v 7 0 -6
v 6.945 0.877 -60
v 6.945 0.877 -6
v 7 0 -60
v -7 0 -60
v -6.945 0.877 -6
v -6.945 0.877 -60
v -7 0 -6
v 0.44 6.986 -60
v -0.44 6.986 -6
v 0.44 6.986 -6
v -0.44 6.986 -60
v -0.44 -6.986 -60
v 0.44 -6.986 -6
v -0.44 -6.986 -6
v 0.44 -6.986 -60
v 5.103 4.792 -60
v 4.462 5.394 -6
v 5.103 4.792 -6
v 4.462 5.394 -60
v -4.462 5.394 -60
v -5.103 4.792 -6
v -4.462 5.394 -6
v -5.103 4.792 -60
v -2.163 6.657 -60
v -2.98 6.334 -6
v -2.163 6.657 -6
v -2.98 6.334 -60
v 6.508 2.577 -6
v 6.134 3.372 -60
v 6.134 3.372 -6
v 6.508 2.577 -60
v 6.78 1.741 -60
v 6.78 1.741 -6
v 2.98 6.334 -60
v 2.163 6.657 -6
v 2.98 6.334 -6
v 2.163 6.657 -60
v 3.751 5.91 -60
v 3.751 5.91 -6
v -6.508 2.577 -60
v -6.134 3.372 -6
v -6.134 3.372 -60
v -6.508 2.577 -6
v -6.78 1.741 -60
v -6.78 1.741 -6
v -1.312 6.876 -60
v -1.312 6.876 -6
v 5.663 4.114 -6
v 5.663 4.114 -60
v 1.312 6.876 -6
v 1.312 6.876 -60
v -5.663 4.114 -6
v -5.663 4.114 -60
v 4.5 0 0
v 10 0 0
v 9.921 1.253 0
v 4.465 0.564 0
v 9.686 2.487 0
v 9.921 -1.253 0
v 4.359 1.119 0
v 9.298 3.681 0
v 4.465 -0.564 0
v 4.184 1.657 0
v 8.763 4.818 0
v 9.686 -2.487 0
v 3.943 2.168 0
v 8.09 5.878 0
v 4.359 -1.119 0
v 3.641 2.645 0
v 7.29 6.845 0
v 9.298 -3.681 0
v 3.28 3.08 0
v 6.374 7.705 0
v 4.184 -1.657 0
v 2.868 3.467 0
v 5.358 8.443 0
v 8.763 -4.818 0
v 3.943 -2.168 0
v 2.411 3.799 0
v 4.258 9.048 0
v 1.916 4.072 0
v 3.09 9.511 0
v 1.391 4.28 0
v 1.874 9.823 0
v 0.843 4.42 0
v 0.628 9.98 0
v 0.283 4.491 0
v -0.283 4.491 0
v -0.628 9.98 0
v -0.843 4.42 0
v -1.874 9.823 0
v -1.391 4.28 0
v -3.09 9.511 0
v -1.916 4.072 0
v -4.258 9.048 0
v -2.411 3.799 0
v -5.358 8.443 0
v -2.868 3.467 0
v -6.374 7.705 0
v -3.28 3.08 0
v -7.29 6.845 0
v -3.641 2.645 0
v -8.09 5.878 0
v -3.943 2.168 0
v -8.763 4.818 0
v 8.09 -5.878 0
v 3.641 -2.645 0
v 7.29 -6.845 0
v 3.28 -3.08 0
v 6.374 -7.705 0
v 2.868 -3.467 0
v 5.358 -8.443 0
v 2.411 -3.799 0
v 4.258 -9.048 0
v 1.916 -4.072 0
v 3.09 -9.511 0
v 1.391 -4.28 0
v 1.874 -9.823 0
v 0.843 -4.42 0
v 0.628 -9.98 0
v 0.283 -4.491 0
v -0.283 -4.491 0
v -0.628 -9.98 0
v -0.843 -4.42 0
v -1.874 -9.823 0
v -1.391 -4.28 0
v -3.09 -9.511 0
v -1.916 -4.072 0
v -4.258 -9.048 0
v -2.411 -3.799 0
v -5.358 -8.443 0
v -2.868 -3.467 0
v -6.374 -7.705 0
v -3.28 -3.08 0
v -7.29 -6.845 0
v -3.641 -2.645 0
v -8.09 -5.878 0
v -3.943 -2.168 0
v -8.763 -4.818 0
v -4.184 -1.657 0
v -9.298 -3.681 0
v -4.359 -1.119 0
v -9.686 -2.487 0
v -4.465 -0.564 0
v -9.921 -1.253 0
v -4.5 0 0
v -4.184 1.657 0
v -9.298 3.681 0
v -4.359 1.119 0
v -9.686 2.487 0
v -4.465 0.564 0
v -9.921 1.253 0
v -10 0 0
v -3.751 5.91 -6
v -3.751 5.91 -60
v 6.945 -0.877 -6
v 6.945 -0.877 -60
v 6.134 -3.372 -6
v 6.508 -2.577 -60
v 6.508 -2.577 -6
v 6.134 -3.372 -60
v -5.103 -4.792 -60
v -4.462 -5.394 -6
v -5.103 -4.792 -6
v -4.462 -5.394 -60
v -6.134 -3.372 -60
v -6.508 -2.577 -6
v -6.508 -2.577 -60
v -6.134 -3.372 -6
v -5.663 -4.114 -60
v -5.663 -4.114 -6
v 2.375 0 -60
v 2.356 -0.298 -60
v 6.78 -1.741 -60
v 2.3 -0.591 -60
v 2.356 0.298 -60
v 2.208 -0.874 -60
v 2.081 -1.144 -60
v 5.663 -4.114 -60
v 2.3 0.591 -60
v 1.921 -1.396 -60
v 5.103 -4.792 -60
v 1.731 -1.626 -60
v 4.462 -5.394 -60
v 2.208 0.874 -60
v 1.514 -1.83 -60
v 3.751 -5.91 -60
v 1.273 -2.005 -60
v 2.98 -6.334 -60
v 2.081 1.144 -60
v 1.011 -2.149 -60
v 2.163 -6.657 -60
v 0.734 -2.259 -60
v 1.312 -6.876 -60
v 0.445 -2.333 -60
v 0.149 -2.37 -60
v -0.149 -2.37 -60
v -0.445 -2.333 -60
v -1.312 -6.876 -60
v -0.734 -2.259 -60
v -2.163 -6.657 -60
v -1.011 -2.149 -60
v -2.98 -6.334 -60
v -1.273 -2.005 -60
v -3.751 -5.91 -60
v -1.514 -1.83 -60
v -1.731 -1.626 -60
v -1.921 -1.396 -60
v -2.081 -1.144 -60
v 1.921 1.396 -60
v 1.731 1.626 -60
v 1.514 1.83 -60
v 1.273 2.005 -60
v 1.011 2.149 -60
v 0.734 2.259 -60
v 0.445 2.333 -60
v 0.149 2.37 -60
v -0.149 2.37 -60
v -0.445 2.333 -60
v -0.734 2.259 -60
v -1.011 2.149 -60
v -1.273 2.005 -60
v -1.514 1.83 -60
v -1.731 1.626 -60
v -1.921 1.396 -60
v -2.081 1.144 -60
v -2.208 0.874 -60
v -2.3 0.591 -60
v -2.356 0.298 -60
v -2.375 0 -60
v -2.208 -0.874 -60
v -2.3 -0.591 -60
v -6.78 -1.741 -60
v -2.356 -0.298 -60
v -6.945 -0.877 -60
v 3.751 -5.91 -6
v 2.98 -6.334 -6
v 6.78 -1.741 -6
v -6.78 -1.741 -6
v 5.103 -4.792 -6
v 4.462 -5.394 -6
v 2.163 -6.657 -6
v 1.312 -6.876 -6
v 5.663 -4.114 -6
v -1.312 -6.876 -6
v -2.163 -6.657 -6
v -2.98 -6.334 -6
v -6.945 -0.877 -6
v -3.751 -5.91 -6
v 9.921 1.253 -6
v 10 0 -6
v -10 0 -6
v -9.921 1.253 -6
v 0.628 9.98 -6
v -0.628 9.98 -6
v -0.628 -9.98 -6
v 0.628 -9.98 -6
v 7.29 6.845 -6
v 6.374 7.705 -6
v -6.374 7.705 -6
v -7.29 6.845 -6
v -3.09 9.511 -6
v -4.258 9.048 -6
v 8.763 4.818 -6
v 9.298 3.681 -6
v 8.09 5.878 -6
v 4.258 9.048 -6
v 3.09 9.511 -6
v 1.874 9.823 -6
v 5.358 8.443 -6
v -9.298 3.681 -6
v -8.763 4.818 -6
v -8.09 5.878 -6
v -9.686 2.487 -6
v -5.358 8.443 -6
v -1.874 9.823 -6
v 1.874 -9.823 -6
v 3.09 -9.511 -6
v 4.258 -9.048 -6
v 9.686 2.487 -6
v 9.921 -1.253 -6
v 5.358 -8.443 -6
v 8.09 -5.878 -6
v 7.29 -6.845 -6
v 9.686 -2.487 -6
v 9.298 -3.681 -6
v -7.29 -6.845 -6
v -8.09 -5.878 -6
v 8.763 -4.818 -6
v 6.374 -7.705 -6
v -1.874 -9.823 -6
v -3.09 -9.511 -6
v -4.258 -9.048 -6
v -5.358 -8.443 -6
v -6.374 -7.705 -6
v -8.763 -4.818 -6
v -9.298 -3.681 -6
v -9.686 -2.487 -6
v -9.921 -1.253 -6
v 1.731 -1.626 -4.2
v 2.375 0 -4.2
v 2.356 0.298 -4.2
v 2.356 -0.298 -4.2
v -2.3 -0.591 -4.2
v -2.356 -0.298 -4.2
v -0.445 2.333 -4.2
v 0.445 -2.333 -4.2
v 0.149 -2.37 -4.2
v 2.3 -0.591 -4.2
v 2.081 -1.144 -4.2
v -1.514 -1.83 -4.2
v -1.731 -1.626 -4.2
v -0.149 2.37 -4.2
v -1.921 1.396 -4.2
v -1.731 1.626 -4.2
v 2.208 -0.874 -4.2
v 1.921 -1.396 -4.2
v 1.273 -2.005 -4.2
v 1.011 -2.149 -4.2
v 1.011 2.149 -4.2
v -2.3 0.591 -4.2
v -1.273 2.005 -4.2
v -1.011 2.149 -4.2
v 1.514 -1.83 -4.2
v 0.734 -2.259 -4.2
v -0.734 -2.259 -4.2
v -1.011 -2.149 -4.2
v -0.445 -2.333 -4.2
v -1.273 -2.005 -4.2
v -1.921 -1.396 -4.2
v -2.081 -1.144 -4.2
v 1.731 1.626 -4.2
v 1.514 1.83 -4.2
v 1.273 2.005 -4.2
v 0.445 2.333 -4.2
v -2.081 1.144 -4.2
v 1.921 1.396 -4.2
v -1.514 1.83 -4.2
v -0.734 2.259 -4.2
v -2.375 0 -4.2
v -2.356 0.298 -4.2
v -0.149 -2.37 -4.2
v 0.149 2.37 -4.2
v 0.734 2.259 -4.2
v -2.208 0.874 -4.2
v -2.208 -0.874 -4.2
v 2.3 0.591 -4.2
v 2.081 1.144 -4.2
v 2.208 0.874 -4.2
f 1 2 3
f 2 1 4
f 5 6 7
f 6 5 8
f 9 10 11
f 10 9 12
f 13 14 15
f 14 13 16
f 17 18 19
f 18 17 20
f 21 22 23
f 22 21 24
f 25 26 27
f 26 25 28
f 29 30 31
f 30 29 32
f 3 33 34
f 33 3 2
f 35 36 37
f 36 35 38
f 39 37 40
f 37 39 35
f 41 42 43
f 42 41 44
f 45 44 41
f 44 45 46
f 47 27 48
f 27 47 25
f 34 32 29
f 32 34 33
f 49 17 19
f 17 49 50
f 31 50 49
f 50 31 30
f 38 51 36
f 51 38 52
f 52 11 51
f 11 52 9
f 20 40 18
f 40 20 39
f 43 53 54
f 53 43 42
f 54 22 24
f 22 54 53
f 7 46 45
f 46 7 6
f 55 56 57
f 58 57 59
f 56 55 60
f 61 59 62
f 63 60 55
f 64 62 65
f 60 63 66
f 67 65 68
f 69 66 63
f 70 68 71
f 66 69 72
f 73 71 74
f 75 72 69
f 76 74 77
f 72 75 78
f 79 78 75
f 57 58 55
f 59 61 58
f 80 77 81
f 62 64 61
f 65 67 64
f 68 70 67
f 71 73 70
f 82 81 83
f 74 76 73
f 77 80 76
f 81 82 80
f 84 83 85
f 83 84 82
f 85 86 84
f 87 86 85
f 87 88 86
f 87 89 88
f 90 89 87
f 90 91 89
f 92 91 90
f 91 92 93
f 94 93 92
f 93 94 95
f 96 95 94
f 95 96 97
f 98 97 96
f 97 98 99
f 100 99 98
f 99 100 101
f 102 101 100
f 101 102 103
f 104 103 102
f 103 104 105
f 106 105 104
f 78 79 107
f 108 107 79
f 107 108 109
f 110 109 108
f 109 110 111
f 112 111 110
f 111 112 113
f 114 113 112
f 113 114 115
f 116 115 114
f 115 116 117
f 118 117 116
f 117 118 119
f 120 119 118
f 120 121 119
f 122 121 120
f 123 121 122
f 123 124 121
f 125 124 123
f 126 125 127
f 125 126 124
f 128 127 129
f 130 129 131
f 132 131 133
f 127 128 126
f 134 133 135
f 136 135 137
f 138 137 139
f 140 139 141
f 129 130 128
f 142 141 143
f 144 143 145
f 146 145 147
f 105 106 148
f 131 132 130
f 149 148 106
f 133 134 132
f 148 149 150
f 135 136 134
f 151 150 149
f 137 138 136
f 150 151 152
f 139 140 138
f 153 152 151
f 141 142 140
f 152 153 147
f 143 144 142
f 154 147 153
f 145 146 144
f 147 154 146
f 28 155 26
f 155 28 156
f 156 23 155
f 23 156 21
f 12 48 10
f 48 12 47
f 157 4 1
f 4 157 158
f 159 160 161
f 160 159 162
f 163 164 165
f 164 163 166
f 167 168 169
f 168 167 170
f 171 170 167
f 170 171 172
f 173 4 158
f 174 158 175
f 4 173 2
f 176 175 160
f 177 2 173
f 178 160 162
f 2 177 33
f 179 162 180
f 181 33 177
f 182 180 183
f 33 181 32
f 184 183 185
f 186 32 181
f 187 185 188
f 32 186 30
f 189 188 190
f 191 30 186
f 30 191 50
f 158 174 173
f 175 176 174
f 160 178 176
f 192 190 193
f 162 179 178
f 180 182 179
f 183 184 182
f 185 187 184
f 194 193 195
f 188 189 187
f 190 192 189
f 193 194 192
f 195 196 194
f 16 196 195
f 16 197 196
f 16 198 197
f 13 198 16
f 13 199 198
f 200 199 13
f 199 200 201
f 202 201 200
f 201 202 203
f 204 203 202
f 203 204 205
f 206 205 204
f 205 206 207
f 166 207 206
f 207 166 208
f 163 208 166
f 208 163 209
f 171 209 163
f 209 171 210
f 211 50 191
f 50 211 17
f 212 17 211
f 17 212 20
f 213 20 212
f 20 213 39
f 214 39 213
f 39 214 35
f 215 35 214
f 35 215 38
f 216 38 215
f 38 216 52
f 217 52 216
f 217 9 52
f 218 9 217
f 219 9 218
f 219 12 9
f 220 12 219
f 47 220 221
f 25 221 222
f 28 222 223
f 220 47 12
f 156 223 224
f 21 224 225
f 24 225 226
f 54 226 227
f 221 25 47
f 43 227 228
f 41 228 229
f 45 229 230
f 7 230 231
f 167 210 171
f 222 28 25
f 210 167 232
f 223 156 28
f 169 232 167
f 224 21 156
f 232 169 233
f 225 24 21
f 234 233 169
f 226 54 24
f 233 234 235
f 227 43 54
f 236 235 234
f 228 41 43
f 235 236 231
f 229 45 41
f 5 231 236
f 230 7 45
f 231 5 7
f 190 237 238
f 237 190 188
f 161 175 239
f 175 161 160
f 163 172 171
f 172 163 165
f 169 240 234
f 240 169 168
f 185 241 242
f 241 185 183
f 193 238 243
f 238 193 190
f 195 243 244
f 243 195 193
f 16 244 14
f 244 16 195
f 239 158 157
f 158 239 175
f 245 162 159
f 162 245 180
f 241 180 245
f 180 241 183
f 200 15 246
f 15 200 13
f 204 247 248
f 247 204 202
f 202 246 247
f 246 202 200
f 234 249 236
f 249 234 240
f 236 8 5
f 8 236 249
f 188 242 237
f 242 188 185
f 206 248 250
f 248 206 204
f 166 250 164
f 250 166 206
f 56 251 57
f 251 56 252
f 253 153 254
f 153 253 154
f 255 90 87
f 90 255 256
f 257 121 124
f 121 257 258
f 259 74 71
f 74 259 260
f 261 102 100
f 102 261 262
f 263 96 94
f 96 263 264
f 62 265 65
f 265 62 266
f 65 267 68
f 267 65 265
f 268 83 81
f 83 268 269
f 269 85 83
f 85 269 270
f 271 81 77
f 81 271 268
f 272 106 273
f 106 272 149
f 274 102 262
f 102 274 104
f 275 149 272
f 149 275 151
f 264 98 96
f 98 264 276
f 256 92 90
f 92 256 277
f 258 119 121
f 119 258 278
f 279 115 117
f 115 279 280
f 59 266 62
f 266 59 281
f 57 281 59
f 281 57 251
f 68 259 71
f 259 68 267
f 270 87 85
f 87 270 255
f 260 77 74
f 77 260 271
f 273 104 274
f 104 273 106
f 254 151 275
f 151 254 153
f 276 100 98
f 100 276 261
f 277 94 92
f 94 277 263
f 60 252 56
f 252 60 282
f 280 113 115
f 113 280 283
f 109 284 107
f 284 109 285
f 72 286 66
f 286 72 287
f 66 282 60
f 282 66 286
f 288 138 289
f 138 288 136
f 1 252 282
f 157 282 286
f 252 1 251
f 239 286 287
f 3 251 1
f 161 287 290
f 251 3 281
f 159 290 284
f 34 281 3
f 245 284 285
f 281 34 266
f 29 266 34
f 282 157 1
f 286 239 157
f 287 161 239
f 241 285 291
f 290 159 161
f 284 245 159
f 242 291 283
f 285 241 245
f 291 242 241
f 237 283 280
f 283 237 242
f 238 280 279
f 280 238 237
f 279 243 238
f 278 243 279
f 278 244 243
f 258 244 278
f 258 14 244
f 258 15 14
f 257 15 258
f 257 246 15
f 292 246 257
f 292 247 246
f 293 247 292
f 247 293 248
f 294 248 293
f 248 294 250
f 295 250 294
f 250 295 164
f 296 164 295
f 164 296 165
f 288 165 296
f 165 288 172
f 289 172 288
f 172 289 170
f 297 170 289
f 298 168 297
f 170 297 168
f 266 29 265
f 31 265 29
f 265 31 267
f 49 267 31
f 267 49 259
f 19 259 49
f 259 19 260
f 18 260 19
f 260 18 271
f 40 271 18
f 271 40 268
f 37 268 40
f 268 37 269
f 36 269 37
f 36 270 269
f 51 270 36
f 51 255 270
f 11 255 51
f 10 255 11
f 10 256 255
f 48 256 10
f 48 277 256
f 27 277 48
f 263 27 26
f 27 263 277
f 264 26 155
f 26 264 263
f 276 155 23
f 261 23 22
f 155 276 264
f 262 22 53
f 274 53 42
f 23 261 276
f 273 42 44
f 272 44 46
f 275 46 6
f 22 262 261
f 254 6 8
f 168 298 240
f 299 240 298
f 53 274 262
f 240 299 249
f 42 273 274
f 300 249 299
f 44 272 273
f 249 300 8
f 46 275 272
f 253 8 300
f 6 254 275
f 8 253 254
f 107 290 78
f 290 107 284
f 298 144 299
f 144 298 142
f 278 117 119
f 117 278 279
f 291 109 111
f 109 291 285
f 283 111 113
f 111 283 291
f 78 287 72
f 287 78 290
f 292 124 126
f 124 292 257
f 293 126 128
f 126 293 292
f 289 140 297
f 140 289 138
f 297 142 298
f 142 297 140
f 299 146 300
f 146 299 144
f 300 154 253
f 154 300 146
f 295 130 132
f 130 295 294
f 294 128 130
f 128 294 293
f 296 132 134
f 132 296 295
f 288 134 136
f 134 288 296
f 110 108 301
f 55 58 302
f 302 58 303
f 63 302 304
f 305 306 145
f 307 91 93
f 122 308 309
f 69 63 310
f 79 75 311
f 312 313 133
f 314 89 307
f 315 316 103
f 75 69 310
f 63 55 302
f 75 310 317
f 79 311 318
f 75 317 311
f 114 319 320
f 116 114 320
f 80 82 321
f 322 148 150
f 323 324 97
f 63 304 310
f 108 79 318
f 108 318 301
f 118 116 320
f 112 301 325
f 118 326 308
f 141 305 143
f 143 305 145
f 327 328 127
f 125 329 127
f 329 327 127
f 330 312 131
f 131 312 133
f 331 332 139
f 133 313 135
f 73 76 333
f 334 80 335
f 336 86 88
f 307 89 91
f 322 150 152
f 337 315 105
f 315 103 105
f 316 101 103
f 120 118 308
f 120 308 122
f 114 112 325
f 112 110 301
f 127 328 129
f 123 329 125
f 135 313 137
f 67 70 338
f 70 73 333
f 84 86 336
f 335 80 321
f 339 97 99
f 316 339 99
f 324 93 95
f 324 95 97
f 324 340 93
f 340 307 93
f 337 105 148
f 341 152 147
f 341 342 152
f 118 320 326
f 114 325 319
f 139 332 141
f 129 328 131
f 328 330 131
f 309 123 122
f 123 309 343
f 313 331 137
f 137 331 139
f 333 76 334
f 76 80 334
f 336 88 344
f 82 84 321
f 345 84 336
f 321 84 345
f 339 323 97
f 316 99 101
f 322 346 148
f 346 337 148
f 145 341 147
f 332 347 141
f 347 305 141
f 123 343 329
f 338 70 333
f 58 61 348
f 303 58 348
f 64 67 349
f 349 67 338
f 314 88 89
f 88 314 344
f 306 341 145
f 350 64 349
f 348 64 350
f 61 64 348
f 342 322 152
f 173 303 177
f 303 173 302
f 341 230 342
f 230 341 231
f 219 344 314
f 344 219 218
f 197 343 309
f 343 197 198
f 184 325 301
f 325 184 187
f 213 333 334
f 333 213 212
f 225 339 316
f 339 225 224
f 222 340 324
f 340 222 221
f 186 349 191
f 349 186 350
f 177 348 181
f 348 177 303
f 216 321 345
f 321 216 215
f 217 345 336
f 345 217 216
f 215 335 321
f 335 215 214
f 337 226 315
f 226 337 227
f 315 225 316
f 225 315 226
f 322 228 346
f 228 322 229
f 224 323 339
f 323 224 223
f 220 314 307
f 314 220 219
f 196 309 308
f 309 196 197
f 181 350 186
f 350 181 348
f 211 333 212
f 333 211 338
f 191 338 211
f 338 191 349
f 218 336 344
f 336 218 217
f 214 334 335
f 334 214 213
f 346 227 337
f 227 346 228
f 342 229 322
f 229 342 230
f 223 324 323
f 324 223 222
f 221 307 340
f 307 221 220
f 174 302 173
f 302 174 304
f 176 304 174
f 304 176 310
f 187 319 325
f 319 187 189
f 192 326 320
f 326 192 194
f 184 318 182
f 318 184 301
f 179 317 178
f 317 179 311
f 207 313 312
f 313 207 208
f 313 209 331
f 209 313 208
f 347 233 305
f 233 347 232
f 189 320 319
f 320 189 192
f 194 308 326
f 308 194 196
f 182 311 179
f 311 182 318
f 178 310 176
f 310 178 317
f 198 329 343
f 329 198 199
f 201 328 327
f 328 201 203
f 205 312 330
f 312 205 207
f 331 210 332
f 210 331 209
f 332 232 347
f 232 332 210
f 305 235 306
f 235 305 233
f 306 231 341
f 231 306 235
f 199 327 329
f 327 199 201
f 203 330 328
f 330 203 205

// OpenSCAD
$fn = 50;


difference() {
	union() {
		translate(v = [0, 0, -60.0000000000]) {
			cylinder(h = 60, r = 7.0000000000);
		}
		translate(v = [0, 0, -6.0000000000]) {
			cylinder(h = 6, r = 10.0000000000);
		}
	}
	union() {
		translate(v = [0, 0, 0]) {
			rotate(a = [0, 0, 0]) {
				difference() {
					union() {
						#translate(v = [0, 0, -60.0000000000]) {
							cylinder(h = 60, r = 2.2500000000);
						}
						#translate(v = [0, 0, -4.2000000000]) {
							cylinder(h = 4.2000000000, r1 = 2.3750000000, r2 = 4.5000000000);
						}
						#translate(v = [0, 0, -60.0000000000]) {
							cylinder(h = 60, r = 2.3750000000);
						}
						#translate(v = [0, 0, -60.0000000000]) {
							cylinder(h = 60, r = 2.2500000000);
						}
					}
					union();
				}
			}
		}
	}
}
